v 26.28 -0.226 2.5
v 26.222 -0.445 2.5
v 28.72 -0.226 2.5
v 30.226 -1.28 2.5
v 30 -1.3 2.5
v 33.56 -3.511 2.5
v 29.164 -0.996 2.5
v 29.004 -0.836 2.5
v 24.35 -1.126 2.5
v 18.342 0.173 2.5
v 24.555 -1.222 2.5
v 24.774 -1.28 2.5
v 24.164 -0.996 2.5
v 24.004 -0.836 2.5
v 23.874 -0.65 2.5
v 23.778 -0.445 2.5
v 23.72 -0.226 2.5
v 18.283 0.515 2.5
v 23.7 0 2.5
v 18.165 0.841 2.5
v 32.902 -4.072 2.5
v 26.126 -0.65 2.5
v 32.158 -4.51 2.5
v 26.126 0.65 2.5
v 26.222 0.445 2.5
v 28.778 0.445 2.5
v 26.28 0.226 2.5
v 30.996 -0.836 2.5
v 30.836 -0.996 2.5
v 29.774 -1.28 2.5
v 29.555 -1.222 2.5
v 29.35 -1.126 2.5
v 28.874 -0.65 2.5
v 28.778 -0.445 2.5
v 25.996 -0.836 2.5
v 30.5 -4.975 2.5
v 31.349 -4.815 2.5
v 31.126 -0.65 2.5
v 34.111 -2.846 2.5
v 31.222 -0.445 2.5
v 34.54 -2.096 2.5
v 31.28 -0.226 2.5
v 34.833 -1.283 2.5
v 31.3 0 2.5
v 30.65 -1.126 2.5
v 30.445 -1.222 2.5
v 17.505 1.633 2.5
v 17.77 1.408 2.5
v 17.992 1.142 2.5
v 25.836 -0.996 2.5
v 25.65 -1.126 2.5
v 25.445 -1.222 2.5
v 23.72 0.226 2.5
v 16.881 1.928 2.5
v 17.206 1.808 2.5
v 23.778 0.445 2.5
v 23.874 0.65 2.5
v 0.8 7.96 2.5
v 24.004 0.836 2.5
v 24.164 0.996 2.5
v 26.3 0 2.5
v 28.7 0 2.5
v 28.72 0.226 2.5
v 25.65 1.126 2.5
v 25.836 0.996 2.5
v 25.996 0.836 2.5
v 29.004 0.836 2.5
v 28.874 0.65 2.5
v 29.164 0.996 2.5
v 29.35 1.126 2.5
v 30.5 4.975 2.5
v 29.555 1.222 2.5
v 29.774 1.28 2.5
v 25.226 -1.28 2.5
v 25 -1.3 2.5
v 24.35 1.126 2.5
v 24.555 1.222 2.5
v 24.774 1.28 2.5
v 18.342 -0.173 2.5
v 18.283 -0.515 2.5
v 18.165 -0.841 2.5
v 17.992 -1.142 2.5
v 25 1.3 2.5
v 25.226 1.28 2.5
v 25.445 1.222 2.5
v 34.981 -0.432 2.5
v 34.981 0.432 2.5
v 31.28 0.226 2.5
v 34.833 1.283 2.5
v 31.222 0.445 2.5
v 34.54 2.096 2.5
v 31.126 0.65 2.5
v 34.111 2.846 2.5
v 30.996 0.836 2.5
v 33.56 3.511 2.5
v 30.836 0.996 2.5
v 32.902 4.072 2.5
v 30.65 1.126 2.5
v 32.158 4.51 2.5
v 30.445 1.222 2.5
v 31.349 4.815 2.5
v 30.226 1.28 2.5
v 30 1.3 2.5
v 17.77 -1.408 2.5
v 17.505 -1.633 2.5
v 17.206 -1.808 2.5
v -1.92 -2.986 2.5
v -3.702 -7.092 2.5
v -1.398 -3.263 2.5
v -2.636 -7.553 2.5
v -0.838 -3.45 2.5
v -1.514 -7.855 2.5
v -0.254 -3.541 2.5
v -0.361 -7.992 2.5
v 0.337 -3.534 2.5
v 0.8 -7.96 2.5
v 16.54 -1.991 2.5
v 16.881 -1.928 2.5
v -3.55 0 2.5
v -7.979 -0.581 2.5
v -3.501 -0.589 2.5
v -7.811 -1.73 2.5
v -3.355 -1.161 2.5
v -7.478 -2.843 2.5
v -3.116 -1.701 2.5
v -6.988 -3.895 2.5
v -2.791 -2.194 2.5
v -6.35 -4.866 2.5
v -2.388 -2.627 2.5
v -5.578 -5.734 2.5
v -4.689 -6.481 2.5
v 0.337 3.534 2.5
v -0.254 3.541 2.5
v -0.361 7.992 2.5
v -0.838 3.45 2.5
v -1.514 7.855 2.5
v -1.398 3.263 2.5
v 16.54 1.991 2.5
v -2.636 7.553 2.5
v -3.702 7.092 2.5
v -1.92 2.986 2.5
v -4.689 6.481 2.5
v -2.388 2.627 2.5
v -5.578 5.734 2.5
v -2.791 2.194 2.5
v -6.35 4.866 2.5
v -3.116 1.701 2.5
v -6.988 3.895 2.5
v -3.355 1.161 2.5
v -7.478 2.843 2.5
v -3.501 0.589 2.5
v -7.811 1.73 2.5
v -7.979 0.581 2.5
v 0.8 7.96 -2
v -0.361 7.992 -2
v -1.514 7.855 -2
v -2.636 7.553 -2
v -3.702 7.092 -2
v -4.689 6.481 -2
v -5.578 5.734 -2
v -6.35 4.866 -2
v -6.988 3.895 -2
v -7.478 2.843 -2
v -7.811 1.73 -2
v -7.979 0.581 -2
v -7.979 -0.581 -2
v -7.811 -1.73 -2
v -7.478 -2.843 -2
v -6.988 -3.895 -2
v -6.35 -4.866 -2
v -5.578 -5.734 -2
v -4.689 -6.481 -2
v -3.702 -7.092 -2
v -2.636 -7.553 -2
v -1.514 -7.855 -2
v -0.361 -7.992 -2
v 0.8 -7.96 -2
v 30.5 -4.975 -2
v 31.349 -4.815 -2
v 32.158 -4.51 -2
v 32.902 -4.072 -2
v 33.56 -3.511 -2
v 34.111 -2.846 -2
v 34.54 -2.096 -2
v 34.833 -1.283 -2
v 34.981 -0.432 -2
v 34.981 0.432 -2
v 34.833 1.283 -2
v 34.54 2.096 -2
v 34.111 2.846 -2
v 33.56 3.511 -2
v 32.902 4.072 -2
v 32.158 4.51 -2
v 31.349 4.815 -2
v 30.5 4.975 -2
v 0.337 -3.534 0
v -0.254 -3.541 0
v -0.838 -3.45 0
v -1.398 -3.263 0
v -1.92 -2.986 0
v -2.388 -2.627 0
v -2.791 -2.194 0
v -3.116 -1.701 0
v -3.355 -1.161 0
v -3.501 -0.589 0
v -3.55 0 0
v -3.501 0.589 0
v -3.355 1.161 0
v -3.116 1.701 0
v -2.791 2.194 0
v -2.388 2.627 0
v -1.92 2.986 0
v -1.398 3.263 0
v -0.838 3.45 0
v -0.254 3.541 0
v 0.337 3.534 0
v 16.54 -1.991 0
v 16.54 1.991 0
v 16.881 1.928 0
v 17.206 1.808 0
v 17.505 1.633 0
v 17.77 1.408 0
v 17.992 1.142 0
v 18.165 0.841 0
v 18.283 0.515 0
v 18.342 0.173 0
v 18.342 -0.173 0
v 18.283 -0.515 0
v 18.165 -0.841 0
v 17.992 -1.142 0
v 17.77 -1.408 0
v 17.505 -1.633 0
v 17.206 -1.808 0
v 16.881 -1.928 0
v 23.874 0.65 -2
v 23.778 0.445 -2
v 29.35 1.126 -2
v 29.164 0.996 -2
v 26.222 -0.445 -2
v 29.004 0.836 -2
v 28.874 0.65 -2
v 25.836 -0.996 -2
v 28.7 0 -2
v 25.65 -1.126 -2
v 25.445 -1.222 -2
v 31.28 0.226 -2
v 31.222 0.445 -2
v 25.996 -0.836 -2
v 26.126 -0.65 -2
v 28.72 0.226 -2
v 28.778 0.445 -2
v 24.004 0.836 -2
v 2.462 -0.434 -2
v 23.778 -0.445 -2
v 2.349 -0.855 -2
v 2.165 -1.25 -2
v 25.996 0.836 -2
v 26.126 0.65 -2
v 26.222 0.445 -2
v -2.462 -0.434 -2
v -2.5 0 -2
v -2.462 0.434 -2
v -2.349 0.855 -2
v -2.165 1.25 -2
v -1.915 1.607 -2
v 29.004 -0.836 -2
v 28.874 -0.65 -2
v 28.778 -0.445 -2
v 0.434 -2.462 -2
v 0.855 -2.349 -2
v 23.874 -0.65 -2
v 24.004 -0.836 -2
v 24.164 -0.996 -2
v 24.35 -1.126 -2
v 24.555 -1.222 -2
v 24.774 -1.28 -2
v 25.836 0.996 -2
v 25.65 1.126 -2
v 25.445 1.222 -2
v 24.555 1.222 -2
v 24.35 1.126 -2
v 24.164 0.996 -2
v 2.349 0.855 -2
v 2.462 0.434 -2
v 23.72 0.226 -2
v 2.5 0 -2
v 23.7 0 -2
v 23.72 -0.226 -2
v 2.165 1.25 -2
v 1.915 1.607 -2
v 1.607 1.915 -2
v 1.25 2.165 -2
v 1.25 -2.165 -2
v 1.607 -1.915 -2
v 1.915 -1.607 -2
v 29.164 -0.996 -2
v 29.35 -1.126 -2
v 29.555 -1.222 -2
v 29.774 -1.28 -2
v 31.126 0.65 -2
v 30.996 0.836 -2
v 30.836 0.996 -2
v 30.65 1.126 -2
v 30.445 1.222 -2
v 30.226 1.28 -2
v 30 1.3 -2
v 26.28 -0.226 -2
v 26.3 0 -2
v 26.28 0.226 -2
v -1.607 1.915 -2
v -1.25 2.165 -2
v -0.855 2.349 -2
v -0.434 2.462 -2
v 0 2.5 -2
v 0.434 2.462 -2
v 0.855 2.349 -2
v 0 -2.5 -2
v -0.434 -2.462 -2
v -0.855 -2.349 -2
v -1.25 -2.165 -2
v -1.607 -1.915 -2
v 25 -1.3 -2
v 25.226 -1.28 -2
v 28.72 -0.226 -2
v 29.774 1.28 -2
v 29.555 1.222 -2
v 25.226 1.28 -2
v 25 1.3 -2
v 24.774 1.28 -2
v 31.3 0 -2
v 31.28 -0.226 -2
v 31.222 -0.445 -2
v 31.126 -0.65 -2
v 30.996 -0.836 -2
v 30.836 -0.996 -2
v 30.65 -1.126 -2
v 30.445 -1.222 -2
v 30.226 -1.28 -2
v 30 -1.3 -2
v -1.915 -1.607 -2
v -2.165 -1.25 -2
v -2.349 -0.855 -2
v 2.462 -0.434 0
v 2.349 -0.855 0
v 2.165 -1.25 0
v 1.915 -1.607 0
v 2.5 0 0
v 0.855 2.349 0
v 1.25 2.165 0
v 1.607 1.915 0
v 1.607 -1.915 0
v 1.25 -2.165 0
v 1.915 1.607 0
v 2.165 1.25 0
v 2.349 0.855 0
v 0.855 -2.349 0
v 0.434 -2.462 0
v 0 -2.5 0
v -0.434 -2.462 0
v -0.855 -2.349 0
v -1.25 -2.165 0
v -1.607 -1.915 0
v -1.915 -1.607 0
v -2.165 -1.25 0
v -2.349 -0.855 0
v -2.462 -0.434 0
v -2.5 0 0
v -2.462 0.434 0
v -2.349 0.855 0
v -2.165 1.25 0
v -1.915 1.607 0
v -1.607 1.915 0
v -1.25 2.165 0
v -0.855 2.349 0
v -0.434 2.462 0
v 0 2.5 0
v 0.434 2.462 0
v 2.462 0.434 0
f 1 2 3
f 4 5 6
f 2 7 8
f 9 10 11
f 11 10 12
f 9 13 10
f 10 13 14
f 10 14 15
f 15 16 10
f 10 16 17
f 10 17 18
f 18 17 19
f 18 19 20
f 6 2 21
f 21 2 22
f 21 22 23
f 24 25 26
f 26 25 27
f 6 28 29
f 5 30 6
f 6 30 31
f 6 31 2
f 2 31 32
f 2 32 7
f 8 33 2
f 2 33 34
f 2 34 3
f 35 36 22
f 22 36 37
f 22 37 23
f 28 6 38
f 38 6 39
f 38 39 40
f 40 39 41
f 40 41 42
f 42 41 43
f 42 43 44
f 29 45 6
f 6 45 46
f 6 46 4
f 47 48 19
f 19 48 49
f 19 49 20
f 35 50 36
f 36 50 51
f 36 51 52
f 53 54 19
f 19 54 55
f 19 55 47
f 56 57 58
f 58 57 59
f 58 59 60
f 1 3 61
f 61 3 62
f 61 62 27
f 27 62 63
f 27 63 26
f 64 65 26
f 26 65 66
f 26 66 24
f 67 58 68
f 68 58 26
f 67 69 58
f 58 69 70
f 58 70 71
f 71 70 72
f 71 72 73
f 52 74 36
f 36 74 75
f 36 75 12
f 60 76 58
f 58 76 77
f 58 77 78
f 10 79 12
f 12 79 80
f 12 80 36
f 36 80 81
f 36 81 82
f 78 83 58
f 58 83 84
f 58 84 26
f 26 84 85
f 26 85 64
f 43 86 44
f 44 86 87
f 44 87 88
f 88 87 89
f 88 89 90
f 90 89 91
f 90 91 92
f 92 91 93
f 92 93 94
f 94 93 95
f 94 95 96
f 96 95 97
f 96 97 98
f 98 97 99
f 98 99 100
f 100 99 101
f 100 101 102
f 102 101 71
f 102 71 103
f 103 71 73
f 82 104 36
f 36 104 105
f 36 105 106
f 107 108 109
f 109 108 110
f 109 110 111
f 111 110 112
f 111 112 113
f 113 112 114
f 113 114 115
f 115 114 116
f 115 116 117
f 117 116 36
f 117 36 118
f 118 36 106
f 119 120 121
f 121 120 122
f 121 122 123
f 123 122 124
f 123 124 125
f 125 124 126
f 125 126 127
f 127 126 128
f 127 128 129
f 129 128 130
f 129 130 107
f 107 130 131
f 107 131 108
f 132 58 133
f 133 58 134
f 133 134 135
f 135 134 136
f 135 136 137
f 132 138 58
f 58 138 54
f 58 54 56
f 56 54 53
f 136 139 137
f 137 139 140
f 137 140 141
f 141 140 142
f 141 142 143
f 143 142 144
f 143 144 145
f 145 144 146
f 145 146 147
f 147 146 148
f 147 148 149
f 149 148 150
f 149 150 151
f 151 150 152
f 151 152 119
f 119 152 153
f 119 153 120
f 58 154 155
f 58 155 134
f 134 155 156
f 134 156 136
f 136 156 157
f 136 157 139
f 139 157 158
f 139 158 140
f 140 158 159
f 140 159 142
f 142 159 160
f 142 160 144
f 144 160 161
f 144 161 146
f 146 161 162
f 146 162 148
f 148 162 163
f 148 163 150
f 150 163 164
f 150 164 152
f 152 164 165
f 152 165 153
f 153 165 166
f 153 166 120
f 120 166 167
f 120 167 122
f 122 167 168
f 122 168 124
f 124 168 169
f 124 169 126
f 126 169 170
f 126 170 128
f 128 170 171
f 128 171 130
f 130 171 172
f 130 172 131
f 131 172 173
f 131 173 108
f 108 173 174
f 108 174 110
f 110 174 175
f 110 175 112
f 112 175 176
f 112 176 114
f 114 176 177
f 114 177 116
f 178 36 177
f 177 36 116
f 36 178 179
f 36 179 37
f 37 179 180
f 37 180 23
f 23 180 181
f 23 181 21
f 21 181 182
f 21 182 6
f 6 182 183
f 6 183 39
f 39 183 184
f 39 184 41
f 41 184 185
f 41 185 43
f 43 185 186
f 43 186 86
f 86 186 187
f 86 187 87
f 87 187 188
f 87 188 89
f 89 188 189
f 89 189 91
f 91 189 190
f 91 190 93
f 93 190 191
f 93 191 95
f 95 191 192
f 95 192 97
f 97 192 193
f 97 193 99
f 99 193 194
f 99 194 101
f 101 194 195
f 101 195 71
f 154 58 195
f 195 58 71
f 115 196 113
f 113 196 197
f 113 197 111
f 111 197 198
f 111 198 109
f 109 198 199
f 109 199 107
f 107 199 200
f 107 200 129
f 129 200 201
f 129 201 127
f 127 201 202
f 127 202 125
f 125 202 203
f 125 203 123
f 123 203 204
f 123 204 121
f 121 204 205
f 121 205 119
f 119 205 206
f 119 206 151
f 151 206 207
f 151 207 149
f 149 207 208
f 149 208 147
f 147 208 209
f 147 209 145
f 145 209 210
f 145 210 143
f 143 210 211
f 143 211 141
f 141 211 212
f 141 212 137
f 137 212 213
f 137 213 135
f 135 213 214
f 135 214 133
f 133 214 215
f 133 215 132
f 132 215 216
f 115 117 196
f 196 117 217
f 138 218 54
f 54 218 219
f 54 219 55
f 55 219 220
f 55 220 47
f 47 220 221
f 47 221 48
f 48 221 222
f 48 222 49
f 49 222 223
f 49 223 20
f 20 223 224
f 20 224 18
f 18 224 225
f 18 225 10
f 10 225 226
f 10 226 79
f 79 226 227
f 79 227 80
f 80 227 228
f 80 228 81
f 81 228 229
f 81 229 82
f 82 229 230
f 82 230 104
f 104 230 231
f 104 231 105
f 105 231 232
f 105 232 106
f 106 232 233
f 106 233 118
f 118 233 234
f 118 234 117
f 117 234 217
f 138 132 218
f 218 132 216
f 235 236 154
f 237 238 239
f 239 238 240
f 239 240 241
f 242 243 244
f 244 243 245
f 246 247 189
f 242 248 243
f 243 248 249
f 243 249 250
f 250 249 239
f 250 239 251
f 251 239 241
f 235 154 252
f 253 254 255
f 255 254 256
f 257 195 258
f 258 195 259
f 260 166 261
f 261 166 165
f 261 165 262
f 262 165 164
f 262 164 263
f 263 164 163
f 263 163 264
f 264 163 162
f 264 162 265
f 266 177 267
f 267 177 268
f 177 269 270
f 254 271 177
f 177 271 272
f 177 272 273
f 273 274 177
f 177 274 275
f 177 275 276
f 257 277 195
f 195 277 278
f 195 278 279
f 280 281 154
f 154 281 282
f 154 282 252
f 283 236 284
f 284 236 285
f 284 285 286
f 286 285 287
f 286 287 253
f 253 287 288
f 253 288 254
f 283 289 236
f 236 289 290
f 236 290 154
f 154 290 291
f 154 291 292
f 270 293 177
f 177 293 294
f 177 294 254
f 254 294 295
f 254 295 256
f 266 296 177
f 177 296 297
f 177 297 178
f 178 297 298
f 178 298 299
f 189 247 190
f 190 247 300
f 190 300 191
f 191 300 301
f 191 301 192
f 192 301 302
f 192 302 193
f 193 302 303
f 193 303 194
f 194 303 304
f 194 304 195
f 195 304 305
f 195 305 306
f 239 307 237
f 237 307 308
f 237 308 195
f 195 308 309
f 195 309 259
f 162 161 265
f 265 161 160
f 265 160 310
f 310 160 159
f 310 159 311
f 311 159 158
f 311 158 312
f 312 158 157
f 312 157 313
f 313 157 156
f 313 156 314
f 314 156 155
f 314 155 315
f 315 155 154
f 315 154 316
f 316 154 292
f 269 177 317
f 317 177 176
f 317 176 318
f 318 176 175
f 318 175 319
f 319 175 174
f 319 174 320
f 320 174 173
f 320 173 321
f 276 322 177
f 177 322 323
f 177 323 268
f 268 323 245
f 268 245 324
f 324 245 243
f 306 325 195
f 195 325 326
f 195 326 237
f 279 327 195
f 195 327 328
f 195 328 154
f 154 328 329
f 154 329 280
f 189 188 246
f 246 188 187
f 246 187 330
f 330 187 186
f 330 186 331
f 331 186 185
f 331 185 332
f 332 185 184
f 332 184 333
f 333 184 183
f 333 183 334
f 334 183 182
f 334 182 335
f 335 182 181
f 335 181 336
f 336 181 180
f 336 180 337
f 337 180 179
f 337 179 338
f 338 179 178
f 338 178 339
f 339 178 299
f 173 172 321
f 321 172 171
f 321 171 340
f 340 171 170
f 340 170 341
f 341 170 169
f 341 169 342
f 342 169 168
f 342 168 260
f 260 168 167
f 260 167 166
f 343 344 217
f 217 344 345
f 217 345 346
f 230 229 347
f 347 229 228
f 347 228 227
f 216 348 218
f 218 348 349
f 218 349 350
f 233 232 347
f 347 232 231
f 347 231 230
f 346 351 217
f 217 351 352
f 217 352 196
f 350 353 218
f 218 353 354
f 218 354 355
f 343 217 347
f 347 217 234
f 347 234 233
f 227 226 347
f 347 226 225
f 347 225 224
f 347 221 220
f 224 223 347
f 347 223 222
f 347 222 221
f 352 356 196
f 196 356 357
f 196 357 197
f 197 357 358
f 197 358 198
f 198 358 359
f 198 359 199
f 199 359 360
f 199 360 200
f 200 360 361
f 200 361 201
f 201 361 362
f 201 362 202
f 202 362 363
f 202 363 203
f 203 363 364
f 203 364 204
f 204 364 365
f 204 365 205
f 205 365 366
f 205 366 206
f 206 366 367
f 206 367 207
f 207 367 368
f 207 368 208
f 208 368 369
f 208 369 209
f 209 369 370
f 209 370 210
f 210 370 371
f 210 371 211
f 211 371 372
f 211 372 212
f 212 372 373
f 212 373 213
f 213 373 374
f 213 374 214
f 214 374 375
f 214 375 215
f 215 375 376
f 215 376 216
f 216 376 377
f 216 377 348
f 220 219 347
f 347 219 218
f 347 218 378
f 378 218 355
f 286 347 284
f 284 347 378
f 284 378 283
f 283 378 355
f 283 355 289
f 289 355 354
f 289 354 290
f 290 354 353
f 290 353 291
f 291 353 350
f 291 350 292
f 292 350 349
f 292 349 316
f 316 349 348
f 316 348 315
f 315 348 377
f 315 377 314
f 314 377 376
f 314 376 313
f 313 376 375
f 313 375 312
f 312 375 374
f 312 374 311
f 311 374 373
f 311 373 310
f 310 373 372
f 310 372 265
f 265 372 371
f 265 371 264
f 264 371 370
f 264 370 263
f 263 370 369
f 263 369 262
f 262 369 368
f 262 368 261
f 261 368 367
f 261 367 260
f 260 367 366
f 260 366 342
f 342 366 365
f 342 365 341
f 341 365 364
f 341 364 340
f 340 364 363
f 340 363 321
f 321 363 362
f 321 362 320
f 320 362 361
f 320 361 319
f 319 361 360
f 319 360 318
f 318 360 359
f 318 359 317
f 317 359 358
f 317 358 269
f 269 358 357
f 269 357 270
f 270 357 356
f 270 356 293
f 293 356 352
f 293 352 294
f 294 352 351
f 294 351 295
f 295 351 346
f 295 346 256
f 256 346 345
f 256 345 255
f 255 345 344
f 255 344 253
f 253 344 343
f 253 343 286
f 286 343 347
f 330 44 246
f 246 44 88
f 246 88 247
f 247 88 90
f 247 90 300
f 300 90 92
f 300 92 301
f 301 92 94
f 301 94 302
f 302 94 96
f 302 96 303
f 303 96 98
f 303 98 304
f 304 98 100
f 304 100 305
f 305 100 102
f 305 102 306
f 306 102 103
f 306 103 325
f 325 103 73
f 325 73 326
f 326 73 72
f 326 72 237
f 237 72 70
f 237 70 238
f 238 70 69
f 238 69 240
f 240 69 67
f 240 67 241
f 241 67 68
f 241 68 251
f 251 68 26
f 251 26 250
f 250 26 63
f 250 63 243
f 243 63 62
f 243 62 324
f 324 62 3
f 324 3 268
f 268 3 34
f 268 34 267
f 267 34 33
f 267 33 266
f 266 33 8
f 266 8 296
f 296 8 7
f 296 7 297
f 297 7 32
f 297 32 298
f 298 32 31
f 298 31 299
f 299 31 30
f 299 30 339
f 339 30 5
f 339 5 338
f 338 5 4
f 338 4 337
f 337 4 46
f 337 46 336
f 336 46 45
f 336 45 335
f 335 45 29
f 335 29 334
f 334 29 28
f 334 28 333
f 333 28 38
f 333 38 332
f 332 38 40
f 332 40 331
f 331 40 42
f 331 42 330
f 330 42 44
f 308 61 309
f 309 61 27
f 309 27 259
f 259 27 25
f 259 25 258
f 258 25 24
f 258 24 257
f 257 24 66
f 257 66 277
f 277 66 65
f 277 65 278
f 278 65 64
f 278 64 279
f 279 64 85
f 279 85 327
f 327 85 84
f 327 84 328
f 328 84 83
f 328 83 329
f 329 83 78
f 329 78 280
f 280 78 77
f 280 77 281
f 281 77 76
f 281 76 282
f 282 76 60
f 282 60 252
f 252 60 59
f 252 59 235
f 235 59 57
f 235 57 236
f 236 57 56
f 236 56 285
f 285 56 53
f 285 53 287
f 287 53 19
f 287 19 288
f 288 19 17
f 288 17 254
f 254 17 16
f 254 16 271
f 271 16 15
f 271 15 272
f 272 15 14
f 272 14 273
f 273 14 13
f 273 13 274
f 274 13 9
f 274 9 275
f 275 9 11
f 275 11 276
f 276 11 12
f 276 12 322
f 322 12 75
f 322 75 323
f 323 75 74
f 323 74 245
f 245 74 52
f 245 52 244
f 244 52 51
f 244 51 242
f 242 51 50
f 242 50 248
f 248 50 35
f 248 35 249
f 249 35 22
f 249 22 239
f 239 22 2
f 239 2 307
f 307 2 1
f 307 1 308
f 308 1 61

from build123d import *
from build123d.topology import SkipClean

# Parameters (mm, degrees)
MAIN_DEPTH            = 2.5
ESQUISSE2_R           = 2.5
ORIGINALBRACKET_DEPTH = 2
ESQUISSE3_R           = 1.3
FIXINGHOLE_DEPTH      = 37.183559803


with BuildPart() as part:
    # Esquisse1 → Main (new body)
    with BuildSketch(Plane.XY):
        with BuildLine():
            Line((0.8, 7.959899497), (30.5, 4.974937186))
            ThreePointArc((30.5, 4.974937186), (35, 0), (30.5, -4.974937186))
            Line((30.5, -4.974937186), (0.8, -7.959899497))
            ThreePointArc((0.8, -7.959899497), (-8, 0), (0.8, 7.959899497))
        make_face()
        with BuildLine():
            Line((0.336544343, 3.534011588), (16.539602446, 1.990992444))
            ThreePointArc((16.539602446, 1.990992444), (18.35, 0), (16.539602446, -1.990992444))
            Line((16.539602446, -1.990992444), (0.336544343, -3.534011588))
            ThreePointArc((0.336544343, -3.534011588), (-3.55, 0), (0.336544343, 3.534011588))
        make_face(mode=Mode.SUBTRACT)
    extrude(amount=MAIN_DEPTH)

    # Esquisse2 → OriginalBracket (add)
    with SkipClean():  # the faces are left unmerged after this step: merging them gives an invalid solid
        with BuildSketch(Plane(origin=(0, 0, 0), x_dir=(-1, 0, 0), z_dir=(0, 0, -1))):
            with BuildLine():
                Line((-0.8, -7.959899497), (-30.5, -4.974937186))
                ThreePointArc((-30.5, -4.974937186), (-35, 0), (-30.5, 4.974937186))
                Line((-30.5, 4.974937186), (-0.8, 7.959899497))
                ThreePointArc((-0.8, 7.959899497), (8, 0), (-0.8, -7.959899497))
            make_face()
            Circle(ESQUISSE2_R, mode=Mode.SUBTRACT)
        extrude(amount=ORIGINALBRACKET_DEPTH)

    # Esquisse3 → FixingHole (cut, through all)
    with SkipClean():  # the faces are left unmerged after this step: merging them gives an invalid solid
        with BuildSketch(Plane.XY.offset(2.5)):
            with Locations((30, 0)):
                Circle(ESQUISSE3_R)
            with Locations((25, 0)):
                Circle(ESQUISSE3_R)
        extrude(amount=-FIXINGHOLE_DEPTH, mode=Mode.SUBTRACT)


solid = part.part
